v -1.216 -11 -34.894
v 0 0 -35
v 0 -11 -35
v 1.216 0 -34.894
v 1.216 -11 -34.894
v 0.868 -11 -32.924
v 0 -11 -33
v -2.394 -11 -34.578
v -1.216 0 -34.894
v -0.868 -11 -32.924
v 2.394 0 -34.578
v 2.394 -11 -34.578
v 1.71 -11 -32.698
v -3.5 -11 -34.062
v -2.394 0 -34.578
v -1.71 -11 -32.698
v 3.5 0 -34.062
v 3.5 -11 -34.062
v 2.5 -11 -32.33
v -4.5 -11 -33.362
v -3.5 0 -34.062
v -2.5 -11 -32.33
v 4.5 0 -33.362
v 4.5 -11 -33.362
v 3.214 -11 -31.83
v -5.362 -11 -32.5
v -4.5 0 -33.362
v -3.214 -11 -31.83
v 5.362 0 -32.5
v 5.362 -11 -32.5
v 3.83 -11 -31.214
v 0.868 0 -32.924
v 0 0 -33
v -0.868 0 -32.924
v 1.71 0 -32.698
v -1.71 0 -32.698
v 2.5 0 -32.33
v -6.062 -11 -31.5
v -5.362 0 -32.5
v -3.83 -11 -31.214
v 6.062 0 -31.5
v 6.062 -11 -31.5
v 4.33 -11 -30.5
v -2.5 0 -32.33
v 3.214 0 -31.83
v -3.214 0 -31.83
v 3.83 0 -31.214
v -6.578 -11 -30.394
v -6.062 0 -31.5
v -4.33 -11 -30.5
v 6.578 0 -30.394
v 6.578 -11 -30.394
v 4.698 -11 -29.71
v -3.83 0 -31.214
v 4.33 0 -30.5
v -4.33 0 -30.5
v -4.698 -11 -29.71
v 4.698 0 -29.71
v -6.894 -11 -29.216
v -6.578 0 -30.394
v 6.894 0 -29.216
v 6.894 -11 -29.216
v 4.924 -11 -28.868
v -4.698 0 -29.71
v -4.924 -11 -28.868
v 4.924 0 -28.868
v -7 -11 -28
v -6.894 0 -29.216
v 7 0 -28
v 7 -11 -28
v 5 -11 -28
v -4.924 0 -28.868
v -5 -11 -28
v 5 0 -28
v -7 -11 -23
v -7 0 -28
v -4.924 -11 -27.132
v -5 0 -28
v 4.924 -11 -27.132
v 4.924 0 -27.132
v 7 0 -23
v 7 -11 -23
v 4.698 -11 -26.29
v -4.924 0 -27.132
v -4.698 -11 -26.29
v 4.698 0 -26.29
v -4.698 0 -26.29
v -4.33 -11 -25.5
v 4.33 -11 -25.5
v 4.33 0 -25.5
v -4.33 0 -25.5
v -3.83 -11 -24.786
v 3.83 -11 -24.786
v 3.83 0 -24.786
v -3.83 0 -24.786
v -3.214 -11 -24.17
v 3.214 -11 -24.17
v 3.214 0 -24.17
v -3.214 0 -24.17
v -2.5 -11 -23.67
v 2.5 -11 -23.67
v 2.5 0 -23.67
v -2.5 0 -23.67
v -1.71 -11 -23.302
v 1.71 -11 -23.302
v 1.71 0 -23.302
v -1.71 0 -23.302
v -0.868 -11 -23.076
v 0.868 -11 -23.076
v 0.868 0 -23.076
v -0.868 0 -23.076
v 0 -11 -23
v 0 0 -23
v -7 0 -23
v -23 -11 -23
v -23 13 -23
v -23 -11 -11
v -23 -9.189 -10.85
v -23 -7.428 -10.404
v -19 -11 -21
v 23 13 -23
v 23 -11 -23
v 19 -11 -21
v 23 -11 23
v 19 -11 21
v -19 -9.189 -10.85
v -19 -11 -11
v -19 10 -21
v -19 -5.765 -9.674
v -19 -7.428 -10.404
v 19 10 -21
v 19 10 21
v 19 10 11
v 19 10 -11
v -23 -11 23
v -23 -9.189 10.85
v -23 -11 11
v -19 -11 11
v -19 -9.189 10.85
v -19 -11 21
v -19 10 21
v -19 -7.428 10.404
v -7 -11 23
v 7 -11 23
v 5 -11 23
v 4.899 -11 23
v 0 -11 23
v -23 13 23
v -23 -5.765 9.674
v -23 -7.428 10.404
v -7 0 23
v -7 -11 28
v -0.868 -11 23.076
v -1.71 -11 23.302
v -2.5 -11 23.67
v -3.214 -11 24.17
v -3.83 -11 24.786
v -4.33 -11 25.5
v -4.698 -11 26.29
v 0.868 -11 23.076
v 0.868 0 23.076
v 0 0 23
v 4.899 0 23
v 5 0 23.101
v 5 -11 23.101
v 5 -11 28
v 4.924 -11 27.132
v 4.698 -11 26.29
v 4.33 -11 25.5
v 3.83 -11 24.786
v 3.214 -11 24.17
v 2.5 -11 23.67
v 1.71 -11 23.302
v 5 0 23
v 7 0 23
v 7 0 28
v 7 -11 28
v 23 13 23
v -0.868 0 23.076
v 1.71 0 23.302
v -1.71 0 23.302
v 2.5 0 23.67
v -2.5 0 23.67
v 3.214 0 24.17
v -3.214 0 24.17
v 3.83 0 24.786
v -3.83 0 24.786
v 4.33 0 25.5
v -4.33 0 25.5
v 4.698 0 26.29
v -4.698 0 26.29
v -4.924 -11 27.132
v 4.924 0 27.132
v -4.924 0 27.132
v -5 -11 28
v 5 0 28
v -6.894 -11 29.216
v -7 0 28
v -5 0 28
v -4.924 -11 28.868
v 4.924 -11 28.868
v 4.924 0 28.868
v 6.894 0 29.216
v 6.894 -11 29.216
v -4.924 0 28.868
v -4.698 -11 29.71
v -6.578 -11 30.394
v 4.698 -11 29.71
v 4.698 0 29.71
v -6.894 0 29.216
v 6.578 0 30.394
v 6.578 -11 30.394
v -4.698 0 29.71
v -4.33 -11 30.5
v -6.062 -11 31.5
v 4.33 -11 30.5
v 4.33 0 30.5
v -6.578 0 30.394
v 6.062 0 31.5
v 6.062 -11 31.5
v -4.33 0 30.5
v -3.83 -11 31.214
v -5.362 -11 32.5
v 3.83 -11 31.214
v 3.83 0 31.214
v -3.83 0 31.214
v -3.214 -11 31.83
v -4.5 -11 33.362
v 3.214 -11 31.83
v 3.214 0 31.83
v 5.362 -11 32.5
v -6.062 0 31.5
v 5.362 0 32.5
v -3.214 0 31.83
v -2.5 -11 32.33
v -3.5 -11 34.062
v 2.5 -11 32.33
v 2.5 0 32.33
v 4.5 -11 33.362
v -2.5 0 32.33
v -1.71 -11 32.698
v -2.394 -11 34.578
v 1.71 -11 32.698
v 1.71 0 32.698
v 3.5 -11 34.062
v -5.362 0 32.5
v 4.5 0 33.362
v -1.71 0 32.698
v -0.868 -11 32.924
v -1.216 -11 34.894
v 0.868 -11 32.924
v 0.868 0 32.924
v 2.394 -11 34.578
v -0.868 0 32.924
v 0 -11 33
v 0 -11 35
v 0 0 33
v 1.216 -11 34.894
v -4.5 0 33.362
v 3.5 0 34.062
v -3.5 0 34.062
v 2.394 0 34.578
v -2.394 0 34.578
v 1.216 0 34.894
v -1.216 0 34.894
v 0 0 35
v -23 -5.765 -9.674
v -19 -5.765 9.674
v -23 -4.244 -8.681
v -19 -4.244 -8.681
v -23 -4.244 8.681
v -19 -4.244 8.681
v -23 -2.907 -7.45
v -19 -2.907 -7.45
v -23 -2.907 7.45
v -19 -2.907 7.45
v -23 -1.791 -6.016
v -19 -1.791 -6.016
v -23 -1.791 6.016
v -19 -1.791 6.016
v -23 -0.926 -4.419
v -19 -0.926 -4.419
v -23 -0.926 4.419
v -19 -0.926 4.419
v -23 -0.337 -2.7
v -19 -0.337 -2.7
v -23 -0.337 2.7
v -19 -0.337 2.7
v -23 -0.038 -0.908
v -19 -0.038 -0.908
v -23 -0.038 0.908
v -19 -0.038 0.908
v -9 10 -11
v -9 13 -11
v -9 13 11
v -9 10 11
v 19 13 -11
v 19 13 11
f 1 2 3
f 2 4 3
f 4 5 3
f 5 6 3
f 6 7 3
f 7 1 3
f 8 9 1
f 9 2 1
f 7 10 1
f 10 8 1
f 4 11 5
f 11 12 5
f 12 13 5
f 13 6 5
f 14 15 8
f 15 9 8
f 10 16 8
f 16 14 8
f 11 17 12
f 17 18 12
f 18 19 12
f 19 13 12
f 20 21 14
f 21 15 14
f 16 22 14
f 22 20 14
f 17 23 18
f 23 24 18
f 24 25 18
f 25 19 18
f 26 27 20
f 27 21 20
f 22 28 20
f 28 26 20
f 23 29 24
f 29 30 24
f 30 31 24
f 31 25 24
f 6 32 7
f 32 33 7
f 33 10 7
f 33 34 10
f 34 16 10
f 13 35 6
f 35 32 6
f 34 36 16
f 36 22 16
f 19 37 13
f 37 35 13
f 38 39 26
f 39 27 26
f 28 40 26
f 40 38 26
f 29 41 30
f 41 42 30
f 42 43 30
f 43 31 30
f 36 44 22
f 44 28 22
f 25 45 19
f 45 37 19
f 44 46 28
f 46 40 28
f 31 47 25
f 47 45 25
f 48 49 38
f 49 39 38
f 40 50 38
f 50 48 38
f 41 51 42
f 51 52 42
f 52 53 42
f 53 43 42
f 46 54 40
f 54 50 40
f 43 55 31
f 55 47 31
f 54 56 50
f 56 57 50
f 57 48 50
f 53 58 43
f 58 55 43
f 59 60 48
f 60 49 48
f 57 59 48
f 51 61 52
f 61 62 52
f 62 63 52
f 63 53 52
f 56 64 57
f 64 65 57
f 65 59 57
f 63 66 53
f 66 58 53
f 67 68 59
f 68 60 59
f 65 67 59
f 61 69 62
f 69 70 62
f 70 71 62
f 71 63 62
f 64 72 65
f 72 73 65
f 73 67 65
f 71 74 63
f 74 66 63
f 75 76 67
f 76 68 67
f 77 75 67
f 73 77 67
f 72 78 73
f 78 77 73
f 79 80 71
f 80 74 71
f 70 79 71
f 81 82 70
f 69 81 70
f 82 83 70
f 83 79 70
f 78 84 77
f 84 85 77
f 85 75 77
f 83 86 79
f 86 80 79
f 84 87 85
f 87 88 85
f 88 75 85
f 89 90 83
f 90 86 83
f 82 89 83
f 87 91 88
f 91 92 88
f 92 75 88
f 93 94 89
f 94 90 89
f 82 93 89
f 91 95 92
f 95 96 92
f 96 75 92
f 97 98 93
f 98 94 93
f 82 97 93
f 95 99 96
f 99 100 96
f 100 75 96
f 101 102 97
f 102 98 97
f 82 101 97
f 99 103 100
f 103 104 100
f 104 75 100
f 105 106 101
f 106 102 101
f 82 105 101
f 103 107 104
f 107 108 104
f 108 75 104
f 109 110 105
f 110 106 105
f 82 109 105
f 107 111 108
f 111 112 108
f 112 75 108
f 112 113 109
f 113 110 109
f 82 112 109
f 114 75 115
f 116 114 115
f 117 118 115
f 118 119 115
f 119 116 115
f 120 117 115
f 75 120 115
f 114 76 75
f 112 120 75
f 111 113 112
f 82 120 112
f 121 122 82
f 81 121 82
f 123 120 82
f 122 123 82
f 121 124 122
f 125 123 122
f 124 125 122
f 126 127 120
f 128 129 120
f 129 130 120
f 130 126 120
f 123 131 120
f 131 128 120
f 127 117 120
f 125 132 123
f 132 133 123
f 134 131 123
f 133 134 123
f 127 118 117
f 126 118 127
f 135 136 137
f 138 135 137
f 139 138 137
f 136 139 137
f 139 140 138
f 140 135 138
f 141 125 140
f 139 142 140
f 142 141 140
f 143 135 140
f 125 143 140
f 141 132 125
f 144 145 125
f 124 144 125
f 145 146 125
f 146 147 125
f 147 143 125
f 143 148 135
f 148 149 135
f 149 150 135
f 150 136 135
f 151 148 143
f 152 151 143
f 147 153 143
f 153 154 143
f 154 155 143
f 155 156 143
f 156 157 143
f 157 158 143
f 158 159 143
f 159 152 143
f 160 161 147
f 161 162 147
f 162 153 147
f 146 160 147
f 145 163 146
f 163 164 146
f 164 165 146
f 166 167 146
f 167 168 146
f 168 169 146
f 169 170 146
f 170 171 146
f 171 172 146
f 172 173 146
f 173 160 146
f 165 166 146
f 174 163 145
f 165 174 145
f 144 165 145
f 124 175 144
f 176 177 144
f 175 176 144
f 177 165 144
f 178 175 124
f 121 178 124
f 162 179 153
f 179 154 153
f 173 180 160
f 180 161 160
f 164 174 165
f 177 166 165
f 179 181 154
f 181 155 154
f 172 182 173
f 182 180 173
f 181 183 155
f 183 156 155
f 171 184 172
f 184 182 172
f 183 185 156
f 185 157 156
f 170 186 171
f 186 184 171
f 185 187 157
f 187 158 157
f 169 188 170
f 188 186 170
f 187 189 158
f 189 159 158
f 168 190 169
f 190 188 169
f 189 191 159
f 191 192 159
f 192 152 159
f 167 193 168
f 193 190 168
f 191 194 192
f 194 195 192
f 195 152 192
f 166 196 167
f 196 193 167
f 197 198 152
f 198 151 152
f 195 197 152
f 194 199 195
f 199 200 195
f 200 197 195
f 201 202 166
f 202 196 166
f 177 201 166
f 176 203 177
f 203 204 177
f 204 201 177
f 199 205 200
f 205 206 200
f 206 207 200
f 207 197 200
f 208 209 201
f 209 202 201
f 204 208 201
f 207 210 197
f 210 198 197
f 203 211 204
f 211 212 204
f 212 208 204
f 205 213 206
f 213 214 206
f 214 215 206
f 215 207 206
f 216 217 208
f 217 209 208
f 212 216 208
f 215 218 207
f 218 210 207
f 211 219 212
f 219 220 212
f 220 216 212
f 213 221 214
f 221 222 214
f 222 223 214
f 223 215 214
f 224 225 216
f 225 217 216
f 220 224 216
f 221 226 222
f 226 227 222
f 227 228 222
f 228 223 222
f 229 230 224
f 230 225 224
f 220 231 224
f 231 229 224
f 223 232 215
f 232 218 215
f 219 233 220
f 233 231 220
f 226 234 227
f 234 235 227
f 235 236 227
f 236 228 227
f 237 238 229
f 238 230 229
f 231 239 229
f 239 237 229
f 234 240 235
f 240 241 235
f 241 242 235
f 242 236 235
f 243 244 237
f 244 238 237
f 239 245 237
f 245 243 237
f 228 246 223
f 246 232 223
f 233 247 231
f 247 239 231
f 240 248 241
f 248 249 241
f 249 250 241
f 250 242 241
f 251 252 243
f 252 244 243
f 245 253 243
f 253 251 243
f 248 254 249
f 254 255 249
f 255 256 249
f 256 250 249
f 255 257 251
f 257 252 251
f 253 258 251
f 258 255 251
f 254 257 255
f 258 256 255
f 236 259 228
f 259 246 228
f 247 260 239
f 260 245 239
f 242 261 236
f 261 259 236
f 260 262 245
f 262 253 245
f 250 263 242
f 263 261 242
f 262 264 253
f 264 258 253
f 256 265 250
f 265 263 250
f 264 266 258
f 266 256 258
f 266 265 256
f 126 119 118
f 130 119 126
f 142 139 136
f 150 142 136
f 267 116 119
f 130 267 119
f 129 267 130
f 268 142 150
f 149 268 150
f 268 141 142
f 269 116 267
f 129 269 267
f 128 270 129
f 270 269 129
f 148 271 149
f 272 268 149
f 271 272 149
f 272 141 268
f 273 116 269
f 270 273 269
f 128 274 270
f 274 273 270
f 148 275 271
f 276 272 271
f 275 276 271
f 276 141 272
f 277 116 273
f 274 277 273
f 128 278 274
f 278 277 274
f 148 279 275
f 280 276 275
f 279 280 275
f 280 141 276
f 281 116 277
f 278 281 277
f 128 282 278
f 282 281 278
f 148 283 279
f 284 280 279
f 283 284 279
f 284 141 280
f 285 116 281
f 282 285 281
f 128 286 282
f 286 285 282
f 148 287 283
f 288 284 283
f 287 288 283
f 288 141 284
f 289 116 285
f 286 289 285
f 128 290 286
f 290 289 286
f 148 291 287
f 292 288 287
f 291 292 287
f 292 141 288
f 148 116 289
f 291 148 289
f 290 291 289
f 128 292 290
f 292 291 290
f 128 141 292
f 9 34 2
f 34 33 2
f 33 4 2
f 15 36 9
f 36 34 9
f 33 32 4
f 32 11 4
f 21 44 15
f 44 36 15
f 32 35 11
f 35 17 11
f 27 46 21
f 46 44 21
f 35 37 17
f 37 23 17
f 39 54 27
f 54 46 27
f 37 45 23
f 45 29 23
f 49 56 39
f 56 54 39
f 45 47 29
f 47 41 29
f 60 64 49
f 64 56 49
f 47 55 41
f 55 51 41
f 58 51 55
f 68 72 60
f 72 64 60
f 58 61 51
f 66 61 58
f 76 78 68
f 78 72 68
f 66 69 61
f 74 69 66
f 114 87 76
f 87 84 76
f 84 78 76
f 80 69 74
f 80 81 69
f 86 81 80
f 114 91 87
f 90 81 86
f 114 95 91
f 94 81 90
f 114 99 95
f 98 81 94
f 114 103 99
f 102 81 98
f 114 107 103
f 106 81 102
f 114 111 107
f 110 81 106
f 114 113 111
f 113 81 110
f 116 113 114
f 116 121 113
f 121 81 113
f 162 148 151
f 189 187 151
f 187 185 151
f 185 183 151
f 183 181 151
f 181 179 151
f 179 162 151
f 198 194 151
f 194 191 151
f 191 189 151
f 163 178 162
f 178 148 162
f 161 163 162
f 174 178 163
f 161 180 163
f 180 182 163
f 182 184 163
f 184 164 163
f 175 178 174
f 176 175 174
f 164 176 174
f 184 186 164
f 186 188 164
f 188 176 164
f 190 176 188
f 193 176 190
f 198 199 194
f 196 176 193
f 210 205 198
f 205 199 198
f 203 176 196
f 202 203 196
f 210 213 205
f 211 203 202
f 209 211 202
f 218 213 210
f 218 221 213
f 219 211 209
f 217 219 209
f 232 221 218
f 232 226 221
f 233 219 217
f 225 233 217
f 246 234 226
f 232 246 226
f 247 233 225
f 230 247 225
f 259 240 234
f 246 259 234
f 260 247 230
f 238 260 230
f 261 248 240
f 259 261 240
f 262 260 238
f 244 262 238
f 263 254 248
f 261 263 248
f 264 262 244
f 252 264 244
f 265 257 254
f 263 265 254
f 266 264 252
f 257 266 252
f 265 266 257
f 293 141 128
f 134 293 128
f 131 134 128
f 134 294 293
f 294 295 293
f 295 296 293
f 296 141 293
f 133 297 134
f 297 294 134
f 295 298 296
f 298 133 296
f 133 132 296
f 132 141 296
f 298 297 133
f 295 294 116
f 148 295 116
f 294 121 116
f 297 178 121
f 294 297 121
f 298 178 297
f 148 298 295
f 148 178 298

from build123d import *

# Parameters (mm, degrees)
ESBO_O1_W                = 46
ESBO_O1_H                = 46
ESBO_O1_W_2              = 38
ESBO_O1_H_2              = 42
RESSALTO_EXTRUS_O1_DEPTH = 10
ESBO_O2_W                = 46
ESBO_O2_H                = 46
ESBO_O2_W_2              = 28
ESBO_O2_H_2              = 22
RESSALTO_EXTRUS_O2_DEPTH = 3
ESBO_O1_4_W              = 38
ESBO_O1_4_H              = 42
ESBO_O1_4_R              = 5
RESSALTO_EXTRUS_O3_DEPTH = 11
ESBO_O3_R                = 11
CORTE_EXTRUS_O1_DEPTH    = 11


with BuildPart() as part:
    # Esboço1 → Ressalto-extrusão1 (new body)
    with BuildSketch(Plane(origin=(0, 0, 0), x_dir=(1, 0, 0), z_dir=(0, 1, 0))):
        Rectangle(ESBO_O1_W, ESBO_O1_H)
        Rectangle(ESBO_O1_W_2, ESBO_O1_H_2, mode=Mode.SUBTRACT)
    extrude(amount=RESSALTO_EXTRUS_O1_DEPTH)

    # Esboço2 → Ressalto-extrusão2 (add)
    with BuildSketch(Plane(origin=(0, 10, 0), x_dir=(1, 0, 0), z_dir=(0, 1, 0))):
        Rectangle(ESBO_O2_W, ESBO_O2_H)
        with Locations((5, 0)):
            Rectangle(ESBO_O2_W_2, ESBO_O2_H_2, mode=Mode.SUBTRACT)
    extrude(amount=RESSALTO_EXTRUS_O2_DEPTH)

    # Esboço1<4> → Ressalto-extrusão3 (add)
    with BuildSketch(Plane(origin=(0, 0, 0), x_dir=(1, 0, 0), z_dir=(0, 1, 0))):
        with BuildLine():
            Line((-7, -23), (-7, -28))
            ThreePointArc((-7, -28), (0, -35), (7, -28))
            Line((7, -28), (7, -23))
            Line((7, -23), (23, -23))
            Line((23, -23), (23, 23))
            Line((23, 23), (7, 23))
            Line((7, 23), (7, 28))
            ThreePointArc((7, 28), (0, 35), (-7, 28))
            Line((-7, 28), (-7, 23))
            Line((-7, 23), (-23, 23))
            Line((-23, 23), (-23, -23))
            Line((-23, -23), (-7, -23))
        make_face()
        Rectangle(ESBO_O1_4_W, ESBO_O1_4_H, mode=Mode.SUBTRACT)
        with BuildLine():
            Line((4.898979486, -23), (5, -23))
            Line((5, -23), (5, -23.101020514))
            ThreePointArc((5, -23.101020514), (4.949747468, -23.050252532), (4.898979486, -23))
        make_face(mode=Mode.SUBTRACT)
        with Locations((0, -28)):
            Circle(ESBO_O1_4_R, mode=Mode.SUBTRACT)
        with Locations((0, 28)):
            Circle(ESBO_O1_4_R, mode=Mode.SUBTRACT)
    extrude(amount=-RESSALTO_EXTRUS_O3_DEPTH)

    # Esboço3 → Corte-extrusão1 (cut)
    with BuildSketch(Plane.ZY.offset(23)):
        with Locations((0, -11)):
            Circle(ESBO_O3_R)
    extrude(amount=-CORTE_EXTRUS_O1_DEPTH, mode=Mode.SUBTRACT)


solid = part.part
